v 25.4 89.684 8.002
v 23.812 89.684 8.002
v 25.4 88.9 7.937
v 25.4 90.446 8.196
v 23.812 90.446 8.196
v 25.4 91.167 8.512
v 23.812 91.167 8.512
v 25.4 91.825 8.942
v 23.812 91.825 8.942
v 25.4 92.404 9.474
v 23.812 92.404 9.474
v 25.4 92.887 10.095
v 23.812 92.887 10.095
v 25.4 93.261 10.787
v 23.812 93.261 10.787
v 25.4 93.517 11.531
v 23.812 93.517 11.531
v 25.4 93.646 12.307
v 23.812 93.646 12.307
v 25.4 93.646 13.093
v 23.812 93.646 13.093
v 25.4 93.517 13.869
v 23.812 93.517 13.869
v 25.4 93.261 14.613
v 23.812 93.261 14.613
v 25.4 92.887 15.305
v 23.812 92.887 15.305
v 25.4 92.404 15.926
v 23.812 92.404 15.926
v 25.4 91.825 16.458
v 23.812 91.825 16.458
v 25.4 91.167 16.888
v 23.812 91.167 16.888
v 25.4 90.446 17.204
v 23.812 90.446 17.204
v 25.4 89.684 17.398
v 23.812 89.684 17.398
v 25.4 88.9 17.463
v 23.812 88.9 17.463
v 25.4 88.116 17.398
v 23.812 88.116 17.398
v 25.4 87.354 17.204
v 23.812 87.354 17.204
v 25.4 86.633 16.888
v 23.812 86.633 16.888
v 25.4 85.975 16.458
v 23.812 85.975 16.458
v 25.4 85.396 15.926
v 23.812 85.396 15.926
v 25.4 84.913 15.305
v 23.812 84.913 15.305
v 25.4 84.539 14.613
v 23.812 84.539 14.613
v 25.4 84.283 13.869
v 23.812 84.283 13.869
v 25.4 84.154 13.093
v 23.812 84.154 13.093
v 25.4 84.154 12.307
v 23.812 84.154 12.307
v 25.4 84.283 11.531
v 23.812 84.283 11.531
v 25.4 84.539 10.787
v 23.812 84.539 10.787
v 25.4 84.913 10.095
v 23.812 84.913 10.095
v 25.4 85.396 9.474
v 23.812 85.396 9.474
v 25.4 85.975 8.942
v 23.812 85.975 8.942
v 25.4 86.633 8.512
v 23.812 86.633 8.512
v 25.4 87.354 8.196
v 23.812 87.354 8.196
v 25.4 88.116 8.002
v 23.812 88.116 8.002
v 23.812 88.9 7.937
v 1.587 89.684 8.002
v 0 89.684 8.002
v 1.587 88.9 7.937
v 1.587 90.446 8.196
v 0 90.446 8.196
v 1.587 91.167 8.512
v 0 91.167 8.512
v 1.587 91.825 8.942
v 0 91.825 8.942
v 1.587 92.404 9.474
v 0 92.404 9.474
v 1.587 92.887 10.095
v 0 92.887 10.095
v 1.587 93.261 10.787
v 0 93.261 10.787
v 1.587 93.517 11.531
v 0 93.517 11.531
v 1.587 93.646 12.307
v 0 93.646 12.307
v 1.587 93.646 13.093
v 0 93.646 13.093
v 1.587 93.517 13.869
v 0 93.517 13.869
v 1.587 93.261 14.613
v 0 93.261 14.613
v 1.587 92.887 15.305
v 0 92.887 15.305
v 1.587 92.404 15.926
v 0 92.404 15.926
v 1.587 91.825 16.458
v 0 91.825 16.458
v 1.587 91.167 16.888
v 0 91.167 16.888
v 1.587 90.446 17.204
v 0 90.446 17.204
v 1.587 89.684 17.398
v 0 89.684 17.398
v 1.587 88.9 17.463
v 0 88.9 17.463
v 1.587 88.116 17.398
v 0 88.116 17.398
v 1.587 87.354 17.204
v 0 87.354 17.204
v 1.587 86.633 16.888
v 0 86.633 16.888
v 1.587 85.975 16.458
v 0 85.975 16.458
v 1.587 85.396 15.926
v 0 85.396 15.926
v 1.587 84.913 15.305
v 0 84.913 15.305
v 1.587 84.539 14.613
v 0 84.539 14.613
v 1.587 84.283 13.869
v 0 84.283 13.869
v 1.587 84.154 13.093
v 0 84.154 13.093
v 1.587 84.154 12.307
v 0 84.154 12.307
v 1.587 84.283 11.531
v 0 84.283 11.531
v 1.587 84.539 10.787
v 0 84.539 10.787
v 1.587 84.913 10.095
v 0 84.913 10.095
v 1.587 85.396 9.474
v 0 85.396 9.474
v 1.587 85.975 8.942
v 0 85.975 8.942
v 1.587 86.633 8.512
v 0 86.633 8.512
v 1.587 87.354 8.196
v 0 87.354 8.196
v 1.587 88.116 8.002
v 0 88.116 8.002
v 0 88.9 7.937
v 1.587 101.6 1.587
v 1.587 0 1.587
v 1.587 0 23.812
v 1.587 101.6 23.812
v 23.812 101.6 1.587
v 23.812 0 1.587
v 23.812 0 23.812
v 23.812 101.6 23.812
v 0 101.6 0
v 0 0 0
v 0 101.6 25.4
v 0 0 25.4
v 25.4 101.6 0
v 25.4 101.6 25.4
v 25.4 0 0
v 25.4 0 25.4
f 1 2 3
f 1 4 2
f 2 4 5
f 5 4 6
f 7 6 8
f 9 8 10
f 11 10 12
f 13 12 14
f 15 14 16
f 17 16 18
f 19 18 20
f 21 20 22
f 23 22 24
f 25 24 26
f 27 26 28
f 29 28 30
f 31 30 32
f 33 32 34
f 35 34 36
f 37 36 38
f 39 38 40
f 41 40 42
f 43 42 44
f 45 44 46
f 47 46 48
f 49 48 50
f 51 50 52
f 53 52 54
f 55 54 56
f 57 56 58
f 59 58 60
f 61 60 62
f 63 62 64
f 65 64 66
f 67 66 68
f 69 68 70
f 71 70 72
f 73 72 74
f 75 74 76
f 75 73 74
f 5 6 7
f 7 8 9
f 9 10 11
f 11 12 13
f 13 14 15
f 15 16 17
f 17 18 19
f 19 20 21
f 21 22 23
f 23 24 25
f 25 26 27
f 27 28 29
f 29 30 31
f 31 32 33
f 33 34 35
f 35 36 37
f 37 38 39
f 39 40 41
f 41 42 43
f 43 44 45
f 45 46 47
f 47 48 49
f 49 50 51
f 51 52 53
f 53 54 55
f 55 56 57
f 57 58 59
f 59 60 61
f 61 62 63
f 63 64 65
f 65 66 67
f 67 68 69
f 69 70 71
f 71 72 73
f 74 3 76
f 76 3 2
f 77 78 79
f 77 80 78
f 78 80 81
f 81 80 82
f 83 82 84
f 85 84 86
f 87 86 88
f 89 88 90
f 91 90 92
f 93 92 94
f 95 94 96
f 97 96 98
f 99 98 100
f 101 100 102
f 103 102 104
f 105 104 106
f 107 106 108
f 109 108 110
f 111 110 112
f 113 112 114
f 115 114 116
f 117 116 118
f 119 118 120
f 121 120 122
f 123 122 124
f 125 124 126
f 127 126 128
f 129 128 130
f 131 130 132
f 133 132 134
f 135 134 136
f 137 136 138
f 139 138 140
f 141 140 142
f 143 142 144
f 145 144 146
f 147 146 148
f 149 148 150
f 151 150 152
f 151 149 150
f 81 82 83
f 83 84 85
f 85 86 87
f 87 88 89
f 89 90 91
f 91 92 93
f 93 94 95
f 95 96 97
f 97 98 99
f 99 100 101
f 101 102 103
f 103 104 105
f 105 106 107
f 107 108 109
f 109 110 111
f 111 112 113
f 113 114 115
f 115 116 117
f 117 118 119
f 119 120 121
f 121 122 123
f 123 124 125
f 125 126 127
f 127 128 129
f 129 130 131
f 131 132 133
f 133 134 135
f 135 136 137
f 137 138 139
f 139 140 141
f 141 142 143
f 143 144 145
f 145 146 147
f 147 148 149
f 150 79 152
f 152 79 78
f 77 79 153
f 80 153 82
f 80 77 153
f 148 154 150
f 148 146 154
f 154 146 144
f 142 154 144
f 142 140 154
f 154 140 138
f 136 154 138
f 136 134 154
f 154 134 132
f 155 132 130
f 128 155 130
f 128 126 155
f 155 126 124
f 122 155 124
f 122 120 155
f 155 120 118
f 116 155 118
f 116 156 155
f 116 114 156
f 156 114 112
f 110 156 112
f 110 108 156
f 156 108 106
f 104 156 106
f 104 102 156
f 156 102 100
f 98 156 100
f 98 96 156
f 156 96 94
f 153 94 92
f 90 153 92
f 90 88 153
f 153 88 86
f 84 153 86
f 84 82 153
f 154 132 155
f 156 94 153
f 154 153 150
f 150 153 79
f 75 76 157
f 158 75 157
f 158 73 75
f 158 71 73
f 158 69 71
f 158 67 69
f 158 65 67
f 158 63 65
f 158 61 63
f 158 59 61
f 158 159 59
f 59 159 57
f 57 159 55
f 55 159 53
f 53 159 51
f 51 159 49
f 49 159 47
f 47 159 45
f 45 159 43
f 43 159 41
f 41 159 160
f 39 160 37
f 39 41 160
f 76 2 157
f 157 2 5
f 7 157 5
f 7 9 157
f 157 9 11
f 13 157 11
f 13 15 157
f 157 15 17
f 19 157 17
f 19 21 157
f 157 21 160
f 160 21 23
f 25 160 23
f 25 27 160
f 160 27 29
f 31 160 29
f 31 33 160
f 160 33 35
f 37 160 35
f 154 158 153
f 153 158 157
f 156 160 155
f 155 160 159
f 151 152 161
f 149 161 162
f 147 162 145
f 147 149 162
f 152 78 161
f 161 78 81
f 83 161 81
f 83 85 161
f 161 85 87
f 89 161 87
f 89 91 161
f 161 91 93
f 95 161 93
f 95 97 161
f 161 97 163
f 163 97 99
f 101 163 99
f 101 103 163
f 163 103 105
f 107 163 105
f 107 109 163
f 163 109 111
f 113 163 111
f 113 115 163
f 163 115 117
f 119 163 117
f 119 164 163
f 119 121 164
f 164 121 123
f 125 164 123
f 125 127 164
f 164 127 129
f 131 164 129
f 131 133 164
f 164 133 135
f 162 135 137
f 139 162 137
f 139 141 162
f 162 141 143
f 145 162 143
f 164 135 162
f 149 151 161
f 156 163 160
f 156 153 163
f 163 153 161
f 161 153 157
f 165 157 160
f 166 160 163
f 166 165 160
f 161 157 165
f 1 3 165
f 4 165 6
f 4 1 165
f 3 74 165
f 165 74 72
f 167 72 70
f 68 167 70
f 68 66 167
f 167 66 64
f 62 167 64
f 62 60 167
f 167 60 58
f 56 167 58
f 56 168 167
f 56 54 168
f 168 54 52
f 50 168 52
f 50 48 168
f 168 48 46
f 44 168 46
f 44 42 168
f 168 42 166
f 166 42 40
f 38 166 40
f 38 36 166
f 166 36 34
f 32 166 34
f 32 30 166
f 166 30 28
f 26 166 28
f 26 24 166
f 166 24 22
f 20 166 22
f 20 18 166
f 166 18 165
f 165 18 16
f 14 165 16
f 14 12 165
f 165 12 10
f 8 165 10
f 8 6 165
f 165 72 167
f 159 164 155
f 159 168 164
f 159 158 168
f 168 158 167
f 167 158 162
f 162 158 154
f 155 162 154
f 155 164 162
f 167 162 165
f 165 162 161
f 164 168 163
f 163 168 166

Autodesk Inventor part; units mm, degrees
ref_plane "YZ Plane" through (0, 0, 0) normal (1, 0, 0) x (0, 1, 0)
ref_plane "XZ Plane" through (0, 0, 0) normal (0, 1, 0) x (-1, 0, 0)
ref_plane "XY Plane" through (0, 0, 0) normal (0, 0, 1) x (1, 0, 0)
sketch "Sketch1" plane through (0, 0, 0) normal (0, 0, 1) x (1, 0, 0)
  line L0 (0, 0) -> (25.4, 0)
  line L1 (25.4, 0) -> (25.4, 101.6)
  line L2 (25.4, 101.6) -> (0, 101.6)
  line L3 (0, 101.6) -> (0, 0)
  dimension "d0" = 25.4
  dimension "d1" = 101.6
extrude "Extrusion1" add sketch "Sketch1" along normal blind 25.4
shell "Shell1" thickness 1.5875 removed faces 2 at (16.9333, 101.6, 16.9333) at (8.4667, 0, 8.4667)
sketch "Sketch2" plane through (25.4, 0, 0) normal (1, 0, 0) x (0, 0, -1)
  line L0 (0, 0) -> (0, 101.6) projected
  line L1 (0, 101.6) -> (-25.4, 101.6) projected
  circle A0 centre (-12.7, 88.9) radius 4.7625
  dimension "d5" = 9.525
  dimension "d6" = 12.7
  dimension "d7" = 12.7
extrude "Extrusion2" cut sketch "Sketch2" against normal through all
properties part number "VerticalRail" material "Aluminum-6061"
